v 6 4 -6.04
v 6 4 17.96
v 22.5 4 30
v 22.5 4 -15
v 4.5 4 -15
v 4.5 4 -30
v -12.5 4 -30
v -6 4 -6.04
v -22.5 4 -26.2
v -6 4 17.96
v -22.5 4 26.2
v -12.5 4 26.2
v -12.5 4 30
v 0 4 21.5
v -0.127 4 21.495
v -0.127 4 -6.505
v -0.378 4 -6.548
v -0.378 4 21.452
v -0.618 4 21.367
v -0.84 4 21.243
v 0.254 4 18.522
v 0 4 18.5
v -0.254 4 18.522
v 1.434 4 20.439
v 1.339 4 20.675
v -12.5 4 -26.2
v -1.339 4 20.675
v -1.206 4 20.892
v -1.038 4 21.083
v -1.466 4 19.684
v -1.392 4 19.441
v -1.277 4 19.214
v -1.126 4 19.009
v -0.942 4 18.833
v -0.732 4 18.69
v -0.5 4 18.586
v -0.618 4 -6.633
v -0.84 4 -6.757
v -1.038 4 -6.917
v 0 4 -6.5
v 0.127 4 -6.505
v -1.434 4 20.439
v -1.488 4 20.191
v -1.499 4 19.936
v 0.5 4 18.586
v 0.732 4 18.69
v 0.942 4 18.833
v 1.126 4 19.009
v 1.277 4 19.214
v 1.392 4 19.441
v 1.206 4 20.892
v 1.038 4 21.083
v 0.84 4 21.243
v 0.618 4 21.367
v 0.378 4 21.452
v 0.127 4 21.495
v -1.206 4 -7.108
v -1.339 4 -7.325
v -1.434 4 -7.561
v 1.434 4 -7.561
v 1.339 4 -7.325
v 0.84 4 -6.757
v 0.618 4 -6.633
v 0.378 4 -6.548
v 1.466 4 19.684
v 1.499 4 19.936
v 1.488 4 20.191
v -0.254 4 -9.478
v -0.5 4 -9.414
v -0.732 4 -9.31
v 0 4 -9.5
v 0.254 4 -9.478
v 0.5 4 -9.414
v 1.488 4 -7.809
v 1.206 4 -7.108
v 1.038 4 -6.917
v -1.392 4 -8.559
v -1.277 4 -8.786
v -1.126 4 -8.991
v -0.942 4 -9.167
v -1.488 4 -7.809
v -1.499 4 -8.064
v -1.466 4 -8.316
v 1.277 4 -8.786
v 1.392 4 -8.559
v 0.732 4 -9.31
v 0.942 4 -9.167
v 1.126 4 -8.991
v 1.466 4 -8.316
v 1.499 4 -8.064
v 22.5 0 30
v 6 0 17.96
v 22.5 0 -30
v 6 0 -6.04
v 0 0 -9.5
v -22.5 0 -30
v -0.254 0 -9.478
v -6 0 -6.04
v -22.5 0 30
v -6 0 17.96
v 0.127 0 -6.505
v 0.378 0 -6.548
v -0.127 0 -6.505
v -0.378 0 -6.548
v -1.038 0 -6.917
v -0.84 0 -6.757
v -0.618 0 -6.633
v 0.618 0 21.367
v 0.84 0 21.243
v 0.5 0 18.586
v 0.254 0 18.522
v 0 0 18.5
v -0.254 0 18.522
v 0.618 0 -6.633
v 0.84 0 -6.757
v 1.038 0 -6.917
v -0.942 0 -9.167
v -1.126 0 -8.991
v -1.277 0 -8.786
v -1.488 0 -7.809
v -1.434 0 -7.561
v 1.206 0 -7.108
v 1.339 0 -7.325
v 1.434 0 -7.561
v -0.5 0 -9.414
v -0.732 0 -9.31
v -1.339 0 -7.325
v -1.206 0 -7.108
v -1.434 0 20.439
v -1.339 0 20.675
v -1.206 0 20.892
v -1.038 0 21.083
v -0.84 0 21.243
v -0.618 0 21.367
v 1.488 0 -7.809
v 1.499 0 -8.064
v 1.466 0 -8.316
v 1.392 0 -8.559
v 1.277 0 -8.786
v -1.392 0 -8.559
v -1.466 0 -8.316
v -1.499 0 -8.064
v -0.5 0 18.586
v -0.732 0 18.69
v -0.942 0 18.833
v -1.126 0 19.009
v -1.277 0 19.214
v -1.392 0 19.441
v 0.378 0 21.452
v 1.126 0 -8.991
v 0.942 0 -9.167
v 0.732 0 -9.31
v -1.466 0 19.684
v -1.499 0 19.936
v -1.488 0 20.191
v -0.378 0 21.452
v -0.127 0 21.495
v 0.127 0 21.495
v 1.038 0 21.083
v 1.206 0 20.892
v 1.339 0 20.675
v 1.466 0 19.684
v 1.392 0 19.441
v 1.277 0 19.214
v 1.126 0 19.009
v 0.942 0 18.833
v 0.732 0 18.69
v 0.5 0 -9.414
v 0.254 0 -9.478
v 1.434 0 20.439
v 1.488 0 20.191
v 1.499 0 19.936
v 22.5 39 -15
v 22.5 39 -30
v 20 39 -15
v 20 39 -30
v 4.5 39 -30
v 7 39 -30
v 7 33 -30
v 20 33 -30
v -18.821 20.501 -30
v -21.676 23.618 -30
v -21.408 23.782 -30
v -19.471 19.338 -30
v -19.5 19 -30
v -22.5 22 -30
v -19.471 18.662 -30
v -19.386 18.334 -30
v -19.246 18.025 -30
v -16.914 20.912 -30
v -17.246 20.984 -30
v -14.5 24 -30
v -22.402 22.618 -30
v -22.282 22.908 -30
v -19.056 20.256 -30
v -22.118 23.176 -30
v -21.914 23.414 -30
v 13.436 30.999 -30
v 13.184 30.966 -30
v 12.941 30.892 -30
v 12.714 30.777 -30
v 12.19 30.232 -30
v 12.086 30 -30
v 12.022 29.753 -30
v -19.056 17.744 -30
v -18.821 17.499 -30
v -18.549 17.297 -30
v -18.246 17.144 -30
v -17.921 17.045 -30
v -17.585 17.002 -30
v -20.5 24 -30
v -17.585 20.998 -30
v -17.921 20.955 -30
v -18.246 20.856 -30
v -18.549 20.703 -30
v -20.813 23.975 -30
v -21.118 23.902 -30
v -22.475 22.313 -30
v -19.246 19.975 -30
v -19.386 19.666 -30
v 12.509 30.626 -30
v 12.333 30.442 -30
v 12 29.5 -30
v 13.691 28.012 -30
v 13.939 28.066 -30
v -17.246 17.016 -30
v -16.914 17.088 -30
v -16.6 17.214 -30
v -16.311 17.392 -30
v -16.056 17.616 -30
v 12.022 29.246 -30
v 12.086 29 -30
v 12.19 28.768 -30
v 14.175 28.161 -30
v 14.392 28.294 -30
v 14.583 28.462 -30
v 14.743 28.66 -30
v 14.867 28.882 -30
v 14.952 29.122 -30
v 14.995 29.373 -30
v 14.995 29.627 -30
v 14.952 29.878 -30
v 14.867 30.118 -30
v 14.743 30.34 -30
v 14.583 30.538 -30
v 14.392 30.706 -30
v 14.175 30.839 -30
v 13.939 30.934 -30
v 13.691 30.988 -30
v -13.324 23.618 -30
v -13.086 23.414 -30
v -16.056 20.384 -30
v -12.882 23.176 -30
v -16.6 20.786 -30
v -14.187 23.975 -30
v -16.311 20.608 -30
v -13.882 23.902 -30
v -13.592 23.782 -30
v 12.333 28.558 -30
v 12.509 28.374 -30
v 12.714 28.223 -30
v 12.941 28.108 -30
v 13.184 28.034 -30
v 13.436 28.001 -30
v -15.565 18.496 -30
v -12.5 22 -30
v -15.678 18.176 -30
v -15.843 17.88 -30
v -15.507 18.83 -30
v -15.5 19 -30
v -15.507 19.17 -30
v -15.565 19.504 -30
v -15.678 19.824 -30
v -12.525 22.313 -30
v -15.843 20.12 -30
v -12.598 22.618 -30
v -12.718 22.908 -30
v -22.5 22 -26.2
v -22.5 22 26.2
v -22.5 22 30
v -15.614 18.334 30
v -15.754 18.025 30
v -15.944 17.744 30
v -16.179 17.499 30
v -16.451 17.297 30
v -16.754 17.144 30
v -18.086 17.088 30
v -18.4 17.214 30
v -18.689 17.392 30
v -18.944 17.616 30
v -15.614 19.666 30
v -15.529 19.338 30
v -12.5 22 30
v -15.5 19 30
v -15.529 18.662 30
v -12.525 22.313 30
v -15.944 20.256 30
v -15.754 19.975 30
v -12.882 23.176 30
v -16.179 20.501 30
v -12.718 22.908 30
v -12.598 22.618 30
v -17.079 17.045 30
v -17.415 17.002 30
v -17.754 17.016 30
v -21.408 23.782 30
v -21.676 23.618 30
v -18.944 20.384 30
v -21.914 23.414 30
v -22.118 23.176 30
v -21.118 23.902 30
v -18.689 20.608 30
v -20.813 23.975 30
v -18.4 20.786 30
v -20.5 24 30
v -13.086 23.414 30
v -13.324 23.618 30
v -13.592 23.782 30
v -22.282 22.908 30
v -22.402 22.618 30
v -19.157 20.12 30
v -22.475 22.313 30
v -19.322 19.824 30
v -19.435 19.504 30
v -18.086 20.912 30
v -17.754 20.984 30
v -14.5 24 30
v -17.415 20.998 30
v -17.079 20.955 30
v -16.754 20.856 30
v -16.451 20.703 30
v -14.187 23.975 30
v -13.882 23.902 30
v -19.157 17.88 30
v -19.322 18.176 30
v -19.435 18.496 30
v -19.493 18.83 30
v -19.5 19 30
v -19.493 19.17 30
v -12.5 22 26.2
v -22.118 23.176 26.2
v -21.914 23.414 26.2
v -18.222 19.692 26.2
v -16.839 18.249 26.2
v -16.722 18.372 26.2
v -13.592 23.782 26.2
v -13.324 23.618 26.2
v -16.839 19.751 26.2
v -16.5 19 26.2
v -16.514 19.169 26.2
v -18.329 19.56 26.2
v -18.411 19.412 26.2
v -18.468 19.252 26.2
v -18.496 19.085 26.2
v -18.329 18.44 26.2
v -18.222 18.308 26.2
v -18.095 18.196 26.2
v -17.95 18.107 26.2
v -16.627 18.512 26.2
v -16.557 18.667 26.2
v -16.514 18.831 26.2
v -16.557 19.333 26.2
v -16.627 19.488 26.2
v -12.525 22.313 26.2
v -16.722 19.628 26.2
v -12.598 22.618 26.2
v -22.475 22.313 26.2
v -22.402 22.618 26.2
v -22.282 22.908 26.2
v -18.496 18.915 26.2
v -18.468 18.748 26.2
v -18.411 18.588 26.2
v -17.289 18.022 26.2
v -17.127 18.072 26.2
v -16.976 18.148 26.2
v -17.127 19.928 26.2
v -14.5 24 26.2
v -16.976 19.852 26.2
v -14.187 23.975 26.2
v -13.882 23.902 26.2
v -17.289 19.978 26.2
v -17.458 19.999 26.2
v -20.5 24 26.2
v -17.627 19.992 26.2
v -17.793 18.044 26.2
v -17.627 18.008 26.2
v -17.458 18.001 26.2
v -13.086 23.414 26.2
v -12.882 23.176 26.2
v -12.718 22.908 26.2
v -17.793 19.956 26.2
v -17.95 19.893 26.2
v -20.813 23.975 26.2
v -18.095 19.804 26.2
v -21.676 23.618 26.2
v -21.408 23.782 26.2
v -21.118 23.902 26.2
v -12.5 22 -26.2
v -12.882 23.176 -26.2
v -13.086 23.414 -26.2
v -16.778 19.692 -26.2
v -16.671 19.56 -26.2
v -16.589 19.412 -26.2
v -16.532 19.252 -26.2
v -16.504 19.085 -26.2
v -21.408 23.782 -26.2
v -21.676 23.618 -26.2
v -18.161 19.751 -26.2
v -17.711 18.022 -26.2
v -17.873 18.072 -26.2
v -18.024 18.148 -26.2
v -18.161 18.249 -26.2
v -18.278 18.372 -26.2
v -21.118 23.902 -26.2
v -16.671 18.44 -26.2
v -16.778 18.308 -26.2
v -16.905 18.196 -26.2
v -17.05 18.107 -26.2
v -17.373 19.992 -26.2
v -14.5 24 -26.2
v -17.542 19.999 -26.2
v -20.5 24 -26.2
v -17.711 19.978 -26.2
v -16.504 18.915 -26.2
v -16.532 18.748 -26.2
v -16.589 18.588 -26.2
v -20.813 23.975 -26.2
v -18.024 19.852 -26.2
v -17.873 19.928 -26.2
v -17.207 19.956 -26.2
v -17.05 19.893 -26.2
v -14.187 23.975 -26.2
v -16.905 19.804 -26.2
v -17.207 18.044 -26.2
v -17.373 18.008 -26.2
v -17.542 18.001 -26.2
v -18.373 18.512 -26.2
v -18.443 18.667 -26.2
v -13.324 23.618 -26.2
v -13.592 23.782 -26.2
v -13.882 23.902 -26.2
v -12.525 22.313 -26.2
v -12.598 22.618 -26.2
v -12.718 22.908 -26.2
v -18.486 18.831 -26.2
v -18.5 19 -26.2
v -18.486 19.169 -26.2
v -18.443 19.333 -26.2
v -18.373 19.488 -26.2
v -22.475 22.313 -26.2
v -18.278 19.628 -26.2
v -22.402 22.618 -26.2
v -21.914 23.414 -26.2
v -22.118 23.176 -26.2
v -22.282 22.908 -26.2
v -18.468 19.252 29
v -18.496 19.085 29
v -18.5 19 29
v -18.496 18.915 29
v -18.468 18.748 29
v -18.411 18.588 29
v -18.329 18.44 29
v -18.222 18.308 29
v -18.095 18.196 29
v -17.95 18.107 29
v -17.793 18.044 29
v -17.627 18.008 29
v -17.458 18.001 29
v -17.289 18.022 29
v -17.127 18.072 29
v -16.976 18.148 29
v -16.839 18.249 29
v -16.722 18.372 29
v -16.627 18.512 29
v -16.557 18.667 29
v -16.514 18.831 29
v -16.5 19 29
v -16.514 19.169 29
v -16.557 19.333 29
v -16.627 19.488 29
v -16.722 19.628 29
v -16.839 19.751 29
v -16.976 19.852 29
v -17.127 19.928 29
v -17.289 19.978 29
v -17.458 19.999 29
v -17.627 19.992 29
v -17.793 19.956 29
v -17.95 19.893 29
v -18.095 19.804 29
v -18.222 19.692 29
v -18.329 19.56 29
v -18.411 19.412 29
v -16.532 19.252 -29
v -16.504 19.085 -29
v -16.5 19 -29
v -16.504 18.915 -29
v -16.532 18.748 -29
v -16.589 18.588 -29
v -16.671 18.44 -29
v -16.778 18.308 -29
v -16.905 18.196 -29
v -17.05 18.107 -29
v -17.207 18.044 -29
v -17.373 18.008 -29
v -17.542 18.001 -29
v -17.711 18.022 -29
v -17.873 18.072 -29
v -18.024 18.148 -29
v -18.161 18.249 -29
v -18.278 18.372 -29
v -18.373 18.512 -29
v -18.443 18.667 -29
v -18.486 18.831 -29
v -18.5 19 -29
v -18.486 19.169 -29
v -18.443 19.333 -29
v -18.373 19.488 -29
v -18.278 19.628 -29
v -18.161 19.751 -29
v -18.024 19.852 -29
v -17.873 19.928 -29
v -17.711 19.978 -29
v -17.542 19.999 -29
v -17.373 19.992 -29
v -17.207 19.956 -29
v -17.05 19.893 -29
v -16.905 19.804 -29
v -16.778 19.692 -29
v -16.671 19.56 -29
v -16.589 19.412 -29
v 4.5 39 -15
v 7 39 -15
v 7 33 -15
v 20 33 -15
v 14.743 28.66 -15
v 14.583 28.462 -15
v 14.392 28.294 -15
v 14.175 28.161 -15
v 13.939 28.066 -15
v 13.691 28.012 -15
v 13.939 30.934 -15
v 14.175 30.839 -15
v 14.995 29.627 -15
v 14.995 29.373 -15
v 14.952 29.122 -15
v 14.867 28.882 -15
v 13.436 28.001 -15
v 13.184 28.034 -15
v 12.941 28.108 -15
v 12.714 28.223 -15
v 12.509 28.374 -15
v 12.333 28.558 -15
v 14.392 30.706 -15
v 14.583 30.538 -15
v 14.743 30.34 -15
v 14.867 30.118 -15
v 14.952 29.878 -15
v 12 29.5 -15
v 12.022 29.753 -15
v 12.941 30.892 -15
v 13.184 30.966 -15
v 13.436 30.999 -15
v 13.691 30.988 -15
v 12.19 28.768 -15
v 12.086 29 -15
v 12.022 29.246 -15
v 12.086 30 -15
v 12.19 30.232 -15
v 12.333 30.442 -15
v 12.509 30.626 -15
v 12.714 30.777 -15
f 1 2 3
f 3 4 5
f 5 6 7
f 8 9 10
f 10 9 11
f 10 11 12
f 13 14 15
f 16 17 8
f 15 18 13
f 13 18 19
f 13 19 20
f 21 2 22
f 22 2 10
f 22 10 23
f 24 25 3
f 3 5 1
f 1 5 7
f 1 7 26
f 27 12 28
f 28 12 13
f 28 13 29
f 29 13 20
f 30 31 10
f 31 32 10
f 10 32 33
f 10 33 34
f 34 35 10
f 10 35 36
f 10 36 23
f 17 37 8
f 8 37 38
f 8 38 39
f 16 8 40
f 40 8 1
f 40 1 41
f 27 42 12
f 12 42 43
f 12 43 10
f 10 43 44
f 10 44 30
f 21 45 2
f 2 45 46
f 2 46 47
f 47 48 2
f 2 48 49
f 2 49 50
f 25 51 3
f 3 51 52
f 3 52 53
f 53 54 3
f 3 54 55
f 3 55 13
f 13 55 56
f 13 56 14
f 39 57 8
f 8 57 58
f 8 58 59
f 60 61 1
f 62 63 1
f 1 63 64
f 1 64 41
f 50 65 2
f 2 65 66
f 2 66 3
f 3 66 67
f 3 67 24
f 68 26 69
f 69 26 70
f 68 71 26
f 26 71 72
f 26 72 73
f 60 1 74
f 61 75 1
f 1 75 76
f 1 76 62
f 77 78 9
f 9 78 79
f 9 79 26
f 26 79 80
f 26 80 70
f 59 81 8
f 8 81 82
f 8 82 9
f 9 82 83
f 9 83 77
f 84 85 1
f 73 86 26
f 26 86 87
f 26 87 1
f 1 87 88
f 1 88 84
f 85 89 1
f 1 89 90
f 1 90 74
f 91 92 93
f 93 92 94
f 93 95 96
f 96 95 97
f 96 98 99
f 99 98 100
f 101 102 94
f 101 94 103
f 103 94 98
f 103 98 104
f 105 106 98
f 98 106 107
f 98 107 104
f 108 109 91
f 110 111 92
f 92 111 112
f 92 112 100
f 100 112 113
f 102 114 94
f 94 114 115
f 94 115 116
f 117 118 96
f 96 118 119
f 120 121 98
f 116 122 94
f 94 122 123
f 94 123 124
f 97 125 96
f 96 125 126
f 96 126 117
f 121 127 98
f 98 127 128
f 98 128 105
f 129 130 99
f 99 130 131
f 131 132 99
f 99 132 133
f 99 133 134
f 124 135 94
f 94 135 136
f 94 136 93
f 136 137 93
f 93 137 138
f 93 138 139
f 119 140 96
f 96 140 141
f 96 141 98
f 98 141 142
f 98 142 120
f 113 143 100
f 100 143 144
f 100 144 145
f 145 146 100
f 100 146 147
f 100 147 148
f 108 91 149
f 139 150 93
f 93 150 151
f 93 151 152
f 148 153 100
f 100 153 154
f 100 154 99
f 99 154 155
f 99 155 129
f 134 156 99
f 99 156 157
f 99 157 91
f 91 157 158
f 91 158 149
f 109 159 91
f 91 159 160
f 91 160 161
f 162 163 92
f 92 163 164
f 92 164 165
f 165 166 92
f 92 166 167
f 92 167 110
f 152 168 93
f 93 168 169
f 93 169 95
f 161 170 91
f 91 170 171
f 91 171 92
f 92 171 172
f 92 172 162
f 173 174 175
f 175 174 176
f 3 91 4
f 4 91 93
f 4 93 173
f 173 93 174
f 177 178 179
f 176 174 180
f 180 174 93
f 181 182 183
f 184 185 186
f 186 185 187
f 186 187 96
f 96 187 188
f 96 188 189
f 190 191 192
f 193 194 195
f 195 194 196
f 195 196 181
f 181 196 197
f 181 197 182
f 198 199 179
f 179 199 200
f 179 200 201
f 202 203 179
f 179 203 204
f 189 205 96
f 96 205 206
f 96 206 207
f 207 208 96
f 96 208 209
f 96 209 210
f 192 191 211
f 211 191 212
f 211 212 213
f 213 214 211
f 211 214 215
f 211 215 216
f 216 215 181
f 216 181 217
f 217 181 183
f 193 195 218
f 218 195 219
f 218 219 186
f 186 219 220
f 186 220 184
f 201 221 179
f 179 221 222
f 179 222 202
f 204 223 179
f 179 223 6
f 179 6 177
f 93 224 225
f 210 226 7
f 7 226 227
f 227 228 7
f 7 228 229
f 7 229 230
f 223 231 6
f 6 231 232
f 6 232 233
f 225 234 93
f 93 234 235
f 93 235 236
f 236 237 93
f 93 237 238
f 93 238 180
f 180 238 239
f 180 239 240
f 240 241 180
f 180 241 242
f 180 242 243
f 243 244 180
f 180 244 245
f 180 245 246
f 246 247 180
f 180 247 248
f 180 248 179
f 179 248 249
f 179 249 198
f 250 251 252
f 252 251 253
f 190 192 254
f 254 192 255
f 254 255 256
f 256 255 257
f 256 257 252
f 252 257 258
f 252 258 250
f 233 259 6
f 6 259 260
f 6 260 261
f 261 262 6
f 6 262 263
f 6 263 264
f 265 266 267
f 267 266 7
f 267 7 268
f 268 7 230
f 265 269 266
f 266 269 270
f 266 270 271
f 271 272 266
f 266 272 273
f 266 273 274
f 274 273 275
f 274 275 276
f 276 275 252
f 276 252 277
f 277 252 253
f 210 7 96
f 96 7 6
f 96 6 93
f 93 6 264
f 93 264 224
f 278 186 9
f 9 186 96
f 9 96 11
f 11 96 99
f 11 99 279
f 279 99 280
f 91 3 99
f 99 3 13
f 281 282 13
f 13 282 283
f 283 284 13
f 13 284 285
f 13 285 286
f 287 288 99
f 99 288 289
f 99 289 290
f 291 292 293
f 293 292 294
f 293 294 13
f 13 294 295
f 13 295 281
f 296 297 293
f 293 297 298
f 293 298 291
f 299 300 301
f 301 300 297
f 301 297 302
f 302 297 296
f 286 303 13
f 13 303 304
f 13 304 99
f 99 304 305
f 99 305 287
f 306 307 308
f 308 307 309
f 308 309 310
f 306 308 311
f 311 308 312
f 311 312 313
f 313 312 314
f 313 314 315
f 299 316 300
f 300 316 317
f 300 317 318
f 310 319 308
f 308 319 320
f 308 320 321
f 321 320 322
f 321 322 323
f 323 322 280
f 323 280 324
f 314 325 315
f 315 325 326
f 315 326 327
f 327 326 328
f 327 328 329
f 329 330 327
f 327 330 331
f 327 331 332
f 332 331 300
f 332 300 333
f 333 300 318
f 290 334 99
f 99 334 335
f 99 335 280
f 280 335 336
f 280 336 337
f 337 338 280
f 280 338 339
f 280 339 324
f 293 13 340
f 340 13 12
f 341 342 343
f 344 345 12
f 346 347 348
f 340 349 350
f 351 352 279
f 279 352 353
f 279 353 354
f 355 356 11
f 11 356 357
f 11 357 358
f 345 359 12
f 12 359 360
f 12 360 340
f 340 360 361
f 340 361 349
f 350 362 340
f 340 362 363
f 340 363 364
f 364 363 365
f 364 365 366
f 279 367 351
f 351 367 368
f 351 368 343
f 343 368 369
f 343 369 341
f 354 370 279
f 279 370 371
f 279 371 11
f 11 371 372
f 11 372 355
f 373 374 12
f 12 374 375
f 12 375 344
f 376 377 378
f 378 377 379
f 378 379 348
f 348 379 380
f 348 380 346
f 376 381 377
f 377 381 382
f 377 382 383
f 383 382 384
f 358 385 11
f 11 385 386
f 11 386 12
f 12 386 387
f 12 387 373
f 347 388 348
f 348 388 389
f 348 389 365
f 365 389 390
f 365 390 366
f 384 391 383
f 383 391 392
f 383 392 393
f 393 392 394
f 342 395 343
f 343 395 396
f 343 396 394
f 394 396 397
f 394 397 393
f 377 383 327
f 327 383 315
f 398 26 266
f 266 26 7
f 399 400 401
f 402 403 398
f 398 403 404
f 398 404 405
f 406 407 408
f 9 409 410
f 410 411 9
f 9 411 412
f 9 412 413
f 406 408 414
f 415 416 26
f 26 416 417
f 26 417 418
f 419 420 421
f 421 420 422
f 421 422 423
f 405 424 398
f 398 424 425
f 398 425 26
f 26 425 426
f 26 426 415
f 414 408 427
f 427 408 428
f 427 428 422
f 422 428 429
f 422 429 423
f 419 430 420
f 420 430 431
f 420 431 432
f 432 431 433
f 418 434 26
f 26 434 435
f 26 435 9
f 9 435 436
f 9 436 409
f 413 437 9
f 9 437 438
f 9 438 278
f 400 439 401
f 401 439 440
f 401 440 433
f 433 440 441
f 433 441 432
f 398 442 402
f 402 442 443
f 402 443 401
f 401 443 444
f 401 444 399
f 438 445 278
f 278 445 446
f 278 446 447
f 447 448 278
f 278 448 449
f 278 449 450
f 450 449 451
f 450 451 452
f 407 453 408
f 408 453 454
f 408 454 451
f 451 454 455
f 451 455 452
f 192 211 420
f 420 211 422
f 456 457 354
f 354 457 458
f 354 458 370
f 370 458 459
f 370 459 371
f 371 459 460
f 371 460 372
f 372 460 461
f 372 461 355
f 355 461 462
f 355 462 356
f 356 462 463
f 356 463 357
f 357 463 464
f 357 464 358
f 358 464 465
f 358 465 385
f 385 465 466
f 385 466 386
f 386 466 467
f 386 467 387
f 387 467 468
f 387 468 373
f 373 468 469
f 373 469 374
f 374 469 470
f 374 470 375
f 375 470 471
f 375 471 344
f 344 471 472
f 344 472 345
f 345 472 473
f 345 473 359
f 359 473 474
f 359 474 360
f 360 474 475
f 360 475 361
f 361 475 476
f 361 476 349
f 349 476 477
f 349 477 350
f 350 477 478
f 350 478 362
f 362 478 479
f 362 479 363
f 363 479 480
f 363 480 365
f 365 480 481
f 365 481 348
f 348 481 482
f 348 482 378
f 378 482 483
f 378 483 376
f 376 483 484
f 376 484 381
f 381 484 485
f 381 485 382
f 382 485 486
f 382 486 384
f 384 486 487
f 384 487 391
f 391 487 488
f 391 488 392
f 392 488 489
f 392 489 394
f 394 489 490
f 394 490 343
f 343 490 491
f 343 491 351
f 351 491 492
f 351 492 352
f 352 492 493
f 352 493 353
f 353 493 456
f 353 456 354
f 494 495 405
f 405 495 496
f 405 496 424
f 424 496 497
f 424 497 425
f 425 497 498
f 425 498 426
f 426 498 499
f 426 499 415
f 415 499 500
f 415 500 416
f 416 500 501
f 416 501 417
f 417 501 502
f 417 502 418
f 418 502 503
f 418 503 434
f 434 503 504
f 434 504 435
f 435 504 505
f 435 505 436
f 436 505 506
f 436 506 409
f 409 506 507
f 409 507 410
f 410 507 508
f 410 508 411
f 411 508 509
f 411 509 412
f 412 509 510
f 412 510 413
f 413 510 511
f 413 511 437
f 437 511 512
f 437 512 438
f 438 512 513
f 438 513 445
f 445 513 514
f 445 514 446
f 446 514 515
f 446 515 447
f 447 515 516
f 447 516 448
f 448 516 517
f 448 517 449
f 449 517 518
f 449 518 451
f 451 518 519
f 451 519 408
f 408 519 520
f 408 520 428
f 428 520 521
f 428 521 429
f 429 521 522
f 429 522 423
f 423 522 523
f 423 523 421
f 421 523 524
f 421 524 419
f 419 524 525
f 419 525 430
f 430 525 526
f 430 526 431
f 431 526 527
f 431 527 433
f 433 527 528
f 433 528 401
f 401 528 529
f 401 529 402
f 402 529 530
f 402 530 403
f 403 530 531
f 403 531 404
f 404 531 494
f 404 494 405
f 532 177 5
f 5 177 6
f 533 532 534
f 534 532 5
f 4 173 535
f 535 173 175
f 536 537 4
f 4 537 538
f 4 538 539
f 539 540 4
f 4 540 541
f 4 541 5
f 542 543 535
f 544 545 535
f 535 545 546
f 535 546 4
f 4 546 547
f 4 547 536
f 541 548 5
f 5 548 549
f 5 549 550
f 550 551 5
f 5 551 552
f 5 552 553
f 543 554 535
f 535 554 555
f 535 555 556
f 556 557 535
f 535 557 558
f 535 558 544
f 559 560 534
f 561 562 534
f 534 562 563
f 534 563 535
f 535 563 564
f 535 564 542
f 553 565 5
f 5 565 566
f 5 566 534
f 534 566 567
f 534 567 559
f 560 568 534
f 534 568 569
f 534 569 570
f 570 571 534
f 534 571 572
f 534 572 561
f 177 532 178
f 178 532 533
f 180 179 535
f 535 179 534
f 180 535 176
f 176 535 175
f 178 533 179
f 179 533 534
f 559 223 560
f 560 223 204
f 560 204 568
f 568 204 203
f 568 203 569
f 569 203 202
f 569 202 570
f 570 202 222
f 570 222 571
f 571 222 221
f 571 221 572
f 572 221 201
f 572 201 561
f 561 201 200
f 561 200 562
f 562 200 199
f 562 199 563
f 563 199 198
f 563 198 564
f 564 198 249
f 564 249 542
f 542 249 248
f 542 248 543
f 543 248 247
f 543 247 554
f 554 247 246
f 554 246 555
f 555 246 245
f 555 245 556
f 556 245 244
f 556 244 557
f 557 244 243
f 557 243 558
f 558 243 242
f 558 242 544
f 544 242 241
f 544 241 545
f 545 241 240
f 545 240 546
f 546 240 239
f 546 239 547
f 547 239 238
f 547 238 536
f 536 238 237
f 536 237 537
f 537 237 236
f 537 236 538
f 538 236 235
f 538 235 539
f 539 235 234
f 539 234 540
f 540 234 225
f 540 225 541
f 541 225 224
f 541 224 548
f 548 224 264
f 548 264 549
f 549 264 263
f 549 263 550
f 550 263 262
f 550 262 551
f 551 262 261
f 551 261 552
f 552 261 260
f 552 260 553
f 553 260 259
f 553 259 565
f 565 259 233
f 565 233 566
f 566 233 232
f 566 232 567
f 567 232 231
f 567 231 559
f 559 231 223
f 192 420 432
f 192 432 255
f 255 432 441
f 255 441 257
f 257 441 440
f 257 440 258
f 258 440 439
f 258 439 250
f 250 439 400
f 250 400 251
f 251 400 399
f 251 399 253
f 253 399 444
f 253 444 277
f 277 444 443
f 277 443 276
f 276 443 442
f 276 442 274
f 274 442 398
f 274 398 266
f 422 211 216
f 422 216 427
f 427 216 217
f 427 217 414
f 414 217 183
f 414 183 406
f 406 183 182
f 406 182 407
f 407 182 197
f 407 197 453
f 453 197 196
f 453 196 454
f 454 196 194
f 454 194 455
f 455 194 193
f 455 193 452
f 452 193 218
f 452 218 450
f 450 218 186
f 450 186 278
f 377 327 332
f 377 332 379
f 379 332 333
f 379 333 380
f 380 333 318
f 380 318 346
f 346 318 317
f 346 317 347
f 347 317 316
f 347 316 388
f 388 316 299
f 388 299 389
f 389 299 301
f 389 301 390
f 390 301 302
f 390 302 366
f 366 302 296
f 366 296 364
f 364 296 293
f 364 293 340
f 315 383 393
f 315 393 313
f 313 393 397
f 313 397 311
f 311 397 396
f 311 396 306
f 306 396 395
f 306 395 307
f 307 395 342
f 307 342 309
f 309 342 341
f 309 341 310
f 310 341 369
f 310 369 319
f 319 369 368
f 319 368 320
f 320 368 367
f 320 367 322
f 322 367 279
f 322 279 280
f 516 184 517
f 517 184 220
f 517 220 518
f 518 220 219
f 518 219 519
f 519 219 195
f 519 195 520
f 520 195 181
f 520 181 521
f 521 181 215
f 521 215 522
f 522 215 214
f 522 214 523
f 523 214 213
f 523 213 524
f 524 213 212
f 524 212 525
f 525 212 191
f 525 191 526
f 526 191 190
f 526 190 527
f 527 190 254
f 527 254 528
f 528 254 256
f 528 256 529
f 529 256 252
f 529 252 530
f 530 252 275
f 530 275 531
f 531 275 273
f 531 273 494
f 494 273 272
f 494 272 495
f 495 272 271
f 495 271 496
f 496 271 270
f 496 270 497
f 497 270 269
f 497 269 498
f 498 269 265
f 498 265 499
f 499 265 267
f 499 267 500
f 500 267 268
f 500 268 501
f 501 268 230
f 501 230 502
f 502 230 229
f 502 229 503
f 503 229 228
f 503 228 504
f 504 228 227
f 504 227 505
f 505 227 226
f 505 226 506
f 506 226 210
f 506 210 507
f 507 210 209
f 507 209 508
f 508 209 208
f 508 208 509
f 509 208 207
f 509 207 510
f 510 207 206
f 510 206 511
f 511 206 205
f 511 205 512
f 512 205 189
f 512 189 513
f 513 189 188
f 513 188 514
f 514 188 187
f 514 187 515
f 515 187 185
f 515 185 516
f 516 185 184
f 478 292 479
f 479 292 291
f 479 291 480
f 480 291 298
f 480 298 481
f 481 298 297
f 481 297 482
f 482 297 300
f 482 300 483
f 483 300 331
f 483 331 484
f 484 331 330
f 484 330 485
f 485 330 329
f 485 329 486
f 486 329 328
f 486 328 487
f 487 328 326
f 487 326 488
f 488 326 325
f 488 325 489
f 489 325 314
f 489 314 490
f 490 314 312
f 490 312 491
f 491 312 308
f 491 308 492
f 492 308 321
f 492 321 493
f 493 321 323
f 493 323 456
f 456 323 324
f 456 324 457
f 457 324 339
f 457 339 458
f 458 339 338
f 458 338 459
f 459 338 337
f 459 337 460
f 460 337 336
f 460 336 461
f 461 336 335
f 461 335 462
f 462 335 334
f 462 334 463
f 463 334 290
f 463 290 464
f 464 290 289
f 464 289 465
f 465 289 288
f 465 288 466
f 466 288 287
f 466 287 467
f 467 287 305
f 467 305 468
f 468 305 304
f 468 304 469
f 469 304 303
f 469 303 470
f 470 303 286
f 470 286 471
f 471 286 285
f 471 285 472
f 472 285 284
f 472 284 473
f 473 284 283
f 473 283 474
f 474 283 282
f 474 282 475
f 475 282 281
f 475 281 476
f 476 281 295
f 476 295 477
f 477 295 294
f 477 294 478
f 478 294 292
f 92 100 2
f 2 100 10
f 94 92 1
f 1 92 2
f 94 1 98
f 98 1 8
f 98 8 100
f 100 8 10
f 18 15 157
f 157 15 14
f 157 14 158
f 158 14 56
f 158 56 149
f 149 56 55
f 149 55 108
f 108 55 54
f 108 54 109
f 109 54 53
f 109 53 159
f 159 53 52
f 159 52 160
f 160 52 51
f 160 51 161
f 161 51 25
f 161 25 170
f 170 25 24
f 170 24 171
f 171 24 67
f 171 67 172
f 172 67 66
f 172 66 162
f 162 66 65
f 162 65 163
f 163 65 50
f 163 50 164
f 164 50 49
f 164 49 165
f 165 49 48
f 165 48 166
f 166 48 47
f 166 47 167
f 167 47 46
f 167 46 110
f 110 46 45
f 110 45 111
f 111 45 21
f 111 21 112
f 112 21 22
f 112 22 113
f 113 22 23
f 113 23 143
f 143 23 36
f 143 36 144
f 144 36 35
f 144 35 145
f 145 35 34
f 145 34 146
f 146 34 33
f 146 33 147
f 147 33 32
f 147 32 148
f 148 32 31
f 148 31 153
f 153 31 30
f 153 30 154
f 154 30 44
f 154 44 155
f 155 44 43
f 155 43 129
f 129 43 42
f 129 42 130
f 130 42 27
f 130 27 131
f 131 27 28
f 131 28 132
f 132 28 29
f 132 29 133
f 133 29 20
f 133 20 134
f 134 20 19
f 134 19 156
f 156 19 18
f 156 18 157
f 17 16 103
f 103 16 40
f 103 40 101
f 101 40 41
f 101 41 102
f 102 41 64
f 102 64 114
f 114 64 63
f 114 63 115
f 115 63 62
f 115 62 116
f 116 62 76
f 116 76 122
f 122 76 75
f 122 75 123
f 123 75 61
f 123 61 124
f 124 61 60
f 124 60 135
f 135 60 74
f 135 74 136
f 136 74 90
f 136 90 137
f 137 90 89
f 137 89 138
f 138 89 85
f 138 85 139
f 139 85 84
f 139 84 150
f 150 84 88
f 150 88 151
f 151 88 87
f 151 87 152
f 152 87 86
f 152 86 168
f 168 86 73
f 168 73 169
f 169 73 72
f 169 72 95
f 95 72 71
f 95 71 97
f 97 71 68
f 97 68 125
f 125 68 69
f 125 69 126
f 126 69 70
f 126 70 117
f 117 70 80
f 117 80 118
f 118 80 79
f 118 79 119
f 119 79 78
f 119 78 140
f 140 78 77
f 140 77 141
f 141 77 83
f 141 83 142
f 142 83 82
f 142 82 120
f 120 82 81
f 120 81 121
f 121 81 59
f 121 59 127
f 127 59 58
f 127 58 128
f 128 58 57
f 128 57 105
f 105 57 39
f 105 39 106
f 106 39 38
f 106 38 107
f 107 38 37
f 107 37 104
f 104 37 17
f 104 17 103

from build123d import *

# Parameters (mm, degrees)
SKETCH1_W           = 45
SKETCH1_H           = 60
BOSS_EXTRUDE1_DEPTH = 4
SKETCH2_W           = 10
SKETCH2_H           = 3.8
BOSS_EXTRUDE2_DEPTH = 20
CUT_EXTRUDE1_REACH  = 70.427
SKETCH3_R           = 1
CUT_EXTRUDE2_REACH  = 70.427
SKETCH4_R           = 1
SKETCH5_W           = 18
SKETCH5_H           = 15
BOSS_EXTRUDE3_DEPTH = 35
SKETCH6_W           = 13
SKETCH6_H           = 20
CUT_EXTRUDE3_DEPTH  = 6
CUT_EXTRUDE4_REACH  = 77.015
SKETCH7_R           = 1.5
FILLET1_R           = 2
CHAMFER2_SIZE       = 1
CHAMFER3_SIZE       = 1
CUT_EXTRUDE5_REACH  = 56.104
SKETCH8_R           = 1.5
SKETCH8_W           = 12
SKETCH8_H           = 24


with BuildPart() as part:
    # Sketch1 → Boss-Extrude1 (new body)
    with BuildSketch(Plane(origin=(0, 0, 0), x_dir=(1, 0, 0), z_dir=(0, 1, 0))):
        Rectangle(SKETCH1_W, SKETCH1_H)
    extrude(amount=BOSS_EXTRUDE1_DEPTH)

    # Sketch2 → Boss-Extrude2 (add)
    with BuildSketch(Plane(origin=(0, 4, 0), x_dir=(1, 0, 0), z_dir=(0, 1, 0))):
        with Locations((-17.5, 28.1)):
            Rectangle(SKETCH2_W, SKETCH2_H)
        with Locations((-17.5, -28.1)):
            Rectangle(SKETCH2_W, SKETCH2_H)
    extrude(amount=BOSS_EXTRUDE2_DEPTH)

    # Sketch3 → Cut-Extrude1 (cut, up to next)
    with BuildSketch(Plane.XY.offset(30), mode=Mode.PRIVATE) as cut_extrude1_sk1:
        with Locations((-17.5, 19)):
            Circle(SKETCH3_R)
    cut_extrude1_tool1 = extrude(cut_extrude1_sk1.sketch, amount=-CUT_EXTRUDE1_REACH, mode=Mode.PRIVATE) & part.part
    add(cut_extrude1_tool1.solids().sort_by_distance((-17.5, 19, 30))[0], mode=Mode.SUBTRACT)

    # Sketch4 → Cut-Extrude2 (cut, up to next)
    with BuildSketch(Plane(origin=(0, 0, -30), x_dir=(-1, 0, 0), z_dir=(0, 0, -1)), mode=Mode.PRIVATE) as cut_extrude2_sk1:
        with Locations(Location((17.5, 19, 0), (0, 0, 180))):
            Circle(SKETCH4_R)
    cut_extrude2_tool1 = extrude(cut_extrude2_sk1.sketch, amount=-CUT_EXTRUDE2_REACH, mode=Mode.PRIVATE) & part.part
    add(cut_extrude2_tool1.solids().sort_by_distance((-17.5, 19, -30))[0], mode=Mode.SUBTRACT)

    # Sketch5 → Boss-Extrude3 (add)
    with BuildSketch(Plane(origin=(0, 4, 0), x_dir=(1, 0, 0), z_dir=(0, 1, 0))):
        with Locations((13.5, 22.5)):
            Rectangle(SKETCH5_W, SKETCH5_H)
    extrude(amount=BOSS_EXTRUDE3_DEPTH)

    # Sketch6 → Cut-Extrude3 (cut)
    with BuildSketch(Plane(origin=(0, 39, 0), x_dir=(1, 0, 0), z_dir=(0, 1, 0))):
        with Locations((13.5, 20)):
            Rectangle(SKETCH6_W, SKETCH6_H)
    extrude(amount=-CUT_EXTRUDE3_DEPTH, mode=Mode.SUBTRACT)

    # Sketch7 → Cut-Extrude4 (cut, up to next)
    with BuildSketch(Plane(origin=(0, 0, -30), x_dir=(-1, 0, 0), z_dir=(0, 0, -1)), mode=Mode.PRIVATE) as cut_extrude4_sk1:
        with Locations((-13.5, 29.5)):
            Circle(SKETCH7_R)
    cut_extrude4_tool1 = extrude(cut_extrude4_sk1.sketch, amount=-CUT_EXTRUDE4_REACH, mode=Mode.PRIVATE) & part.part
    add(cut_extrude4_tool1.solids().sort_by_distance((13.5, 29.5, -30))[0], mode=Mode.SUBTRACT)

    # Fillet1
    fillet1_edges = [part.edges().sort_by_distance(p)[0] for p in [
        (-12.5, 24, -28.1),
        (-22.5, 24, -28.1),
        (-12.5, 24, 28.1),
        (-22.5, 24, 28.1),
    ]]
    fillet(fillet1_edges, radius=FILLET1_R)

    # Chamfer2
    chamfer2_edges = [part.edges().sort_by_distance(p)[0] for p in [
        (-18.5, 19, -30),
    ]]
    chamfer(chamfer2_edges, length=CHAMFER2_SIZE)

    # Chamfer3
    chamfer3_edges = [part.edges().sort_by_distance(p)[0] for p in [
        (-18.5, 19, 30),
    ]]
    chamfer(chamfer3_edges, length=CHAMFER3_SIZE)

    # Sketch8 → Cut-Extrude5 (cut, up to next)
    with BuildSketch(Plane.XZ, mode=Mode.PRIVATE) as cut_extrude5_sk1:
        with Locations(Location((0, -8, 0), (0, 0, 270))):
            Circle(SKETCH8_R)
    cut_extrude5_tool1 = extrude(cut_extrude5_sk1.sketch, amount=-CUT_EXTRUDE5_REACH, mode=Mode.PRIVATE) & part.part
    # Sketch8 → Cut-Extrude5 (cut, up to next)
    with BuildSketch(Plane.XZ, mode=Mode.PRIVATE) as cut_extrude5_sk2:
        with Locations(Location((0, 20, 0), (0, 0, 270))):
            Circle(SKETCH8_R)
    cut_extrude5_tool2 = extrude(cut_extrude5_sk2.sketch, amount=-CUT_EXTRUDE5_REACH, mode=Mode.PRIVATE) & part.part
    # Sketch8 → Cut-Extrude5 (cut, up to next)
    with BuildSketch(Plane.XZ, mode=Mode.PRIVATE) as cut_extrude5_sk3:
        with Locations((0, 5.960185671)):
            Rectangle(SKETCH8_W, SKETCH8_H)
    cut_extrude5_tool3 = extrude(cut_extrude5_sk3.sketch, amount=-CUT_EXTRUDE5_REACH, mode=Mode.PRIVATE) & part.part
    add(cut_extrude5_tool1.solids().sort_by_distance((0, 0, -8))[0], mode=Mode.SUBTRACT)
    add(cut_extrude5_tool2.solids().sort_by_distance((0, 0, 20))[0], mode=Mode.SUBTRACT)
    add(cut_extrude5_tool3.solids().sort_by_distance((0, 0, 5.960186))[0], mode=Mode.SUBTRACT)


solid = part.part
